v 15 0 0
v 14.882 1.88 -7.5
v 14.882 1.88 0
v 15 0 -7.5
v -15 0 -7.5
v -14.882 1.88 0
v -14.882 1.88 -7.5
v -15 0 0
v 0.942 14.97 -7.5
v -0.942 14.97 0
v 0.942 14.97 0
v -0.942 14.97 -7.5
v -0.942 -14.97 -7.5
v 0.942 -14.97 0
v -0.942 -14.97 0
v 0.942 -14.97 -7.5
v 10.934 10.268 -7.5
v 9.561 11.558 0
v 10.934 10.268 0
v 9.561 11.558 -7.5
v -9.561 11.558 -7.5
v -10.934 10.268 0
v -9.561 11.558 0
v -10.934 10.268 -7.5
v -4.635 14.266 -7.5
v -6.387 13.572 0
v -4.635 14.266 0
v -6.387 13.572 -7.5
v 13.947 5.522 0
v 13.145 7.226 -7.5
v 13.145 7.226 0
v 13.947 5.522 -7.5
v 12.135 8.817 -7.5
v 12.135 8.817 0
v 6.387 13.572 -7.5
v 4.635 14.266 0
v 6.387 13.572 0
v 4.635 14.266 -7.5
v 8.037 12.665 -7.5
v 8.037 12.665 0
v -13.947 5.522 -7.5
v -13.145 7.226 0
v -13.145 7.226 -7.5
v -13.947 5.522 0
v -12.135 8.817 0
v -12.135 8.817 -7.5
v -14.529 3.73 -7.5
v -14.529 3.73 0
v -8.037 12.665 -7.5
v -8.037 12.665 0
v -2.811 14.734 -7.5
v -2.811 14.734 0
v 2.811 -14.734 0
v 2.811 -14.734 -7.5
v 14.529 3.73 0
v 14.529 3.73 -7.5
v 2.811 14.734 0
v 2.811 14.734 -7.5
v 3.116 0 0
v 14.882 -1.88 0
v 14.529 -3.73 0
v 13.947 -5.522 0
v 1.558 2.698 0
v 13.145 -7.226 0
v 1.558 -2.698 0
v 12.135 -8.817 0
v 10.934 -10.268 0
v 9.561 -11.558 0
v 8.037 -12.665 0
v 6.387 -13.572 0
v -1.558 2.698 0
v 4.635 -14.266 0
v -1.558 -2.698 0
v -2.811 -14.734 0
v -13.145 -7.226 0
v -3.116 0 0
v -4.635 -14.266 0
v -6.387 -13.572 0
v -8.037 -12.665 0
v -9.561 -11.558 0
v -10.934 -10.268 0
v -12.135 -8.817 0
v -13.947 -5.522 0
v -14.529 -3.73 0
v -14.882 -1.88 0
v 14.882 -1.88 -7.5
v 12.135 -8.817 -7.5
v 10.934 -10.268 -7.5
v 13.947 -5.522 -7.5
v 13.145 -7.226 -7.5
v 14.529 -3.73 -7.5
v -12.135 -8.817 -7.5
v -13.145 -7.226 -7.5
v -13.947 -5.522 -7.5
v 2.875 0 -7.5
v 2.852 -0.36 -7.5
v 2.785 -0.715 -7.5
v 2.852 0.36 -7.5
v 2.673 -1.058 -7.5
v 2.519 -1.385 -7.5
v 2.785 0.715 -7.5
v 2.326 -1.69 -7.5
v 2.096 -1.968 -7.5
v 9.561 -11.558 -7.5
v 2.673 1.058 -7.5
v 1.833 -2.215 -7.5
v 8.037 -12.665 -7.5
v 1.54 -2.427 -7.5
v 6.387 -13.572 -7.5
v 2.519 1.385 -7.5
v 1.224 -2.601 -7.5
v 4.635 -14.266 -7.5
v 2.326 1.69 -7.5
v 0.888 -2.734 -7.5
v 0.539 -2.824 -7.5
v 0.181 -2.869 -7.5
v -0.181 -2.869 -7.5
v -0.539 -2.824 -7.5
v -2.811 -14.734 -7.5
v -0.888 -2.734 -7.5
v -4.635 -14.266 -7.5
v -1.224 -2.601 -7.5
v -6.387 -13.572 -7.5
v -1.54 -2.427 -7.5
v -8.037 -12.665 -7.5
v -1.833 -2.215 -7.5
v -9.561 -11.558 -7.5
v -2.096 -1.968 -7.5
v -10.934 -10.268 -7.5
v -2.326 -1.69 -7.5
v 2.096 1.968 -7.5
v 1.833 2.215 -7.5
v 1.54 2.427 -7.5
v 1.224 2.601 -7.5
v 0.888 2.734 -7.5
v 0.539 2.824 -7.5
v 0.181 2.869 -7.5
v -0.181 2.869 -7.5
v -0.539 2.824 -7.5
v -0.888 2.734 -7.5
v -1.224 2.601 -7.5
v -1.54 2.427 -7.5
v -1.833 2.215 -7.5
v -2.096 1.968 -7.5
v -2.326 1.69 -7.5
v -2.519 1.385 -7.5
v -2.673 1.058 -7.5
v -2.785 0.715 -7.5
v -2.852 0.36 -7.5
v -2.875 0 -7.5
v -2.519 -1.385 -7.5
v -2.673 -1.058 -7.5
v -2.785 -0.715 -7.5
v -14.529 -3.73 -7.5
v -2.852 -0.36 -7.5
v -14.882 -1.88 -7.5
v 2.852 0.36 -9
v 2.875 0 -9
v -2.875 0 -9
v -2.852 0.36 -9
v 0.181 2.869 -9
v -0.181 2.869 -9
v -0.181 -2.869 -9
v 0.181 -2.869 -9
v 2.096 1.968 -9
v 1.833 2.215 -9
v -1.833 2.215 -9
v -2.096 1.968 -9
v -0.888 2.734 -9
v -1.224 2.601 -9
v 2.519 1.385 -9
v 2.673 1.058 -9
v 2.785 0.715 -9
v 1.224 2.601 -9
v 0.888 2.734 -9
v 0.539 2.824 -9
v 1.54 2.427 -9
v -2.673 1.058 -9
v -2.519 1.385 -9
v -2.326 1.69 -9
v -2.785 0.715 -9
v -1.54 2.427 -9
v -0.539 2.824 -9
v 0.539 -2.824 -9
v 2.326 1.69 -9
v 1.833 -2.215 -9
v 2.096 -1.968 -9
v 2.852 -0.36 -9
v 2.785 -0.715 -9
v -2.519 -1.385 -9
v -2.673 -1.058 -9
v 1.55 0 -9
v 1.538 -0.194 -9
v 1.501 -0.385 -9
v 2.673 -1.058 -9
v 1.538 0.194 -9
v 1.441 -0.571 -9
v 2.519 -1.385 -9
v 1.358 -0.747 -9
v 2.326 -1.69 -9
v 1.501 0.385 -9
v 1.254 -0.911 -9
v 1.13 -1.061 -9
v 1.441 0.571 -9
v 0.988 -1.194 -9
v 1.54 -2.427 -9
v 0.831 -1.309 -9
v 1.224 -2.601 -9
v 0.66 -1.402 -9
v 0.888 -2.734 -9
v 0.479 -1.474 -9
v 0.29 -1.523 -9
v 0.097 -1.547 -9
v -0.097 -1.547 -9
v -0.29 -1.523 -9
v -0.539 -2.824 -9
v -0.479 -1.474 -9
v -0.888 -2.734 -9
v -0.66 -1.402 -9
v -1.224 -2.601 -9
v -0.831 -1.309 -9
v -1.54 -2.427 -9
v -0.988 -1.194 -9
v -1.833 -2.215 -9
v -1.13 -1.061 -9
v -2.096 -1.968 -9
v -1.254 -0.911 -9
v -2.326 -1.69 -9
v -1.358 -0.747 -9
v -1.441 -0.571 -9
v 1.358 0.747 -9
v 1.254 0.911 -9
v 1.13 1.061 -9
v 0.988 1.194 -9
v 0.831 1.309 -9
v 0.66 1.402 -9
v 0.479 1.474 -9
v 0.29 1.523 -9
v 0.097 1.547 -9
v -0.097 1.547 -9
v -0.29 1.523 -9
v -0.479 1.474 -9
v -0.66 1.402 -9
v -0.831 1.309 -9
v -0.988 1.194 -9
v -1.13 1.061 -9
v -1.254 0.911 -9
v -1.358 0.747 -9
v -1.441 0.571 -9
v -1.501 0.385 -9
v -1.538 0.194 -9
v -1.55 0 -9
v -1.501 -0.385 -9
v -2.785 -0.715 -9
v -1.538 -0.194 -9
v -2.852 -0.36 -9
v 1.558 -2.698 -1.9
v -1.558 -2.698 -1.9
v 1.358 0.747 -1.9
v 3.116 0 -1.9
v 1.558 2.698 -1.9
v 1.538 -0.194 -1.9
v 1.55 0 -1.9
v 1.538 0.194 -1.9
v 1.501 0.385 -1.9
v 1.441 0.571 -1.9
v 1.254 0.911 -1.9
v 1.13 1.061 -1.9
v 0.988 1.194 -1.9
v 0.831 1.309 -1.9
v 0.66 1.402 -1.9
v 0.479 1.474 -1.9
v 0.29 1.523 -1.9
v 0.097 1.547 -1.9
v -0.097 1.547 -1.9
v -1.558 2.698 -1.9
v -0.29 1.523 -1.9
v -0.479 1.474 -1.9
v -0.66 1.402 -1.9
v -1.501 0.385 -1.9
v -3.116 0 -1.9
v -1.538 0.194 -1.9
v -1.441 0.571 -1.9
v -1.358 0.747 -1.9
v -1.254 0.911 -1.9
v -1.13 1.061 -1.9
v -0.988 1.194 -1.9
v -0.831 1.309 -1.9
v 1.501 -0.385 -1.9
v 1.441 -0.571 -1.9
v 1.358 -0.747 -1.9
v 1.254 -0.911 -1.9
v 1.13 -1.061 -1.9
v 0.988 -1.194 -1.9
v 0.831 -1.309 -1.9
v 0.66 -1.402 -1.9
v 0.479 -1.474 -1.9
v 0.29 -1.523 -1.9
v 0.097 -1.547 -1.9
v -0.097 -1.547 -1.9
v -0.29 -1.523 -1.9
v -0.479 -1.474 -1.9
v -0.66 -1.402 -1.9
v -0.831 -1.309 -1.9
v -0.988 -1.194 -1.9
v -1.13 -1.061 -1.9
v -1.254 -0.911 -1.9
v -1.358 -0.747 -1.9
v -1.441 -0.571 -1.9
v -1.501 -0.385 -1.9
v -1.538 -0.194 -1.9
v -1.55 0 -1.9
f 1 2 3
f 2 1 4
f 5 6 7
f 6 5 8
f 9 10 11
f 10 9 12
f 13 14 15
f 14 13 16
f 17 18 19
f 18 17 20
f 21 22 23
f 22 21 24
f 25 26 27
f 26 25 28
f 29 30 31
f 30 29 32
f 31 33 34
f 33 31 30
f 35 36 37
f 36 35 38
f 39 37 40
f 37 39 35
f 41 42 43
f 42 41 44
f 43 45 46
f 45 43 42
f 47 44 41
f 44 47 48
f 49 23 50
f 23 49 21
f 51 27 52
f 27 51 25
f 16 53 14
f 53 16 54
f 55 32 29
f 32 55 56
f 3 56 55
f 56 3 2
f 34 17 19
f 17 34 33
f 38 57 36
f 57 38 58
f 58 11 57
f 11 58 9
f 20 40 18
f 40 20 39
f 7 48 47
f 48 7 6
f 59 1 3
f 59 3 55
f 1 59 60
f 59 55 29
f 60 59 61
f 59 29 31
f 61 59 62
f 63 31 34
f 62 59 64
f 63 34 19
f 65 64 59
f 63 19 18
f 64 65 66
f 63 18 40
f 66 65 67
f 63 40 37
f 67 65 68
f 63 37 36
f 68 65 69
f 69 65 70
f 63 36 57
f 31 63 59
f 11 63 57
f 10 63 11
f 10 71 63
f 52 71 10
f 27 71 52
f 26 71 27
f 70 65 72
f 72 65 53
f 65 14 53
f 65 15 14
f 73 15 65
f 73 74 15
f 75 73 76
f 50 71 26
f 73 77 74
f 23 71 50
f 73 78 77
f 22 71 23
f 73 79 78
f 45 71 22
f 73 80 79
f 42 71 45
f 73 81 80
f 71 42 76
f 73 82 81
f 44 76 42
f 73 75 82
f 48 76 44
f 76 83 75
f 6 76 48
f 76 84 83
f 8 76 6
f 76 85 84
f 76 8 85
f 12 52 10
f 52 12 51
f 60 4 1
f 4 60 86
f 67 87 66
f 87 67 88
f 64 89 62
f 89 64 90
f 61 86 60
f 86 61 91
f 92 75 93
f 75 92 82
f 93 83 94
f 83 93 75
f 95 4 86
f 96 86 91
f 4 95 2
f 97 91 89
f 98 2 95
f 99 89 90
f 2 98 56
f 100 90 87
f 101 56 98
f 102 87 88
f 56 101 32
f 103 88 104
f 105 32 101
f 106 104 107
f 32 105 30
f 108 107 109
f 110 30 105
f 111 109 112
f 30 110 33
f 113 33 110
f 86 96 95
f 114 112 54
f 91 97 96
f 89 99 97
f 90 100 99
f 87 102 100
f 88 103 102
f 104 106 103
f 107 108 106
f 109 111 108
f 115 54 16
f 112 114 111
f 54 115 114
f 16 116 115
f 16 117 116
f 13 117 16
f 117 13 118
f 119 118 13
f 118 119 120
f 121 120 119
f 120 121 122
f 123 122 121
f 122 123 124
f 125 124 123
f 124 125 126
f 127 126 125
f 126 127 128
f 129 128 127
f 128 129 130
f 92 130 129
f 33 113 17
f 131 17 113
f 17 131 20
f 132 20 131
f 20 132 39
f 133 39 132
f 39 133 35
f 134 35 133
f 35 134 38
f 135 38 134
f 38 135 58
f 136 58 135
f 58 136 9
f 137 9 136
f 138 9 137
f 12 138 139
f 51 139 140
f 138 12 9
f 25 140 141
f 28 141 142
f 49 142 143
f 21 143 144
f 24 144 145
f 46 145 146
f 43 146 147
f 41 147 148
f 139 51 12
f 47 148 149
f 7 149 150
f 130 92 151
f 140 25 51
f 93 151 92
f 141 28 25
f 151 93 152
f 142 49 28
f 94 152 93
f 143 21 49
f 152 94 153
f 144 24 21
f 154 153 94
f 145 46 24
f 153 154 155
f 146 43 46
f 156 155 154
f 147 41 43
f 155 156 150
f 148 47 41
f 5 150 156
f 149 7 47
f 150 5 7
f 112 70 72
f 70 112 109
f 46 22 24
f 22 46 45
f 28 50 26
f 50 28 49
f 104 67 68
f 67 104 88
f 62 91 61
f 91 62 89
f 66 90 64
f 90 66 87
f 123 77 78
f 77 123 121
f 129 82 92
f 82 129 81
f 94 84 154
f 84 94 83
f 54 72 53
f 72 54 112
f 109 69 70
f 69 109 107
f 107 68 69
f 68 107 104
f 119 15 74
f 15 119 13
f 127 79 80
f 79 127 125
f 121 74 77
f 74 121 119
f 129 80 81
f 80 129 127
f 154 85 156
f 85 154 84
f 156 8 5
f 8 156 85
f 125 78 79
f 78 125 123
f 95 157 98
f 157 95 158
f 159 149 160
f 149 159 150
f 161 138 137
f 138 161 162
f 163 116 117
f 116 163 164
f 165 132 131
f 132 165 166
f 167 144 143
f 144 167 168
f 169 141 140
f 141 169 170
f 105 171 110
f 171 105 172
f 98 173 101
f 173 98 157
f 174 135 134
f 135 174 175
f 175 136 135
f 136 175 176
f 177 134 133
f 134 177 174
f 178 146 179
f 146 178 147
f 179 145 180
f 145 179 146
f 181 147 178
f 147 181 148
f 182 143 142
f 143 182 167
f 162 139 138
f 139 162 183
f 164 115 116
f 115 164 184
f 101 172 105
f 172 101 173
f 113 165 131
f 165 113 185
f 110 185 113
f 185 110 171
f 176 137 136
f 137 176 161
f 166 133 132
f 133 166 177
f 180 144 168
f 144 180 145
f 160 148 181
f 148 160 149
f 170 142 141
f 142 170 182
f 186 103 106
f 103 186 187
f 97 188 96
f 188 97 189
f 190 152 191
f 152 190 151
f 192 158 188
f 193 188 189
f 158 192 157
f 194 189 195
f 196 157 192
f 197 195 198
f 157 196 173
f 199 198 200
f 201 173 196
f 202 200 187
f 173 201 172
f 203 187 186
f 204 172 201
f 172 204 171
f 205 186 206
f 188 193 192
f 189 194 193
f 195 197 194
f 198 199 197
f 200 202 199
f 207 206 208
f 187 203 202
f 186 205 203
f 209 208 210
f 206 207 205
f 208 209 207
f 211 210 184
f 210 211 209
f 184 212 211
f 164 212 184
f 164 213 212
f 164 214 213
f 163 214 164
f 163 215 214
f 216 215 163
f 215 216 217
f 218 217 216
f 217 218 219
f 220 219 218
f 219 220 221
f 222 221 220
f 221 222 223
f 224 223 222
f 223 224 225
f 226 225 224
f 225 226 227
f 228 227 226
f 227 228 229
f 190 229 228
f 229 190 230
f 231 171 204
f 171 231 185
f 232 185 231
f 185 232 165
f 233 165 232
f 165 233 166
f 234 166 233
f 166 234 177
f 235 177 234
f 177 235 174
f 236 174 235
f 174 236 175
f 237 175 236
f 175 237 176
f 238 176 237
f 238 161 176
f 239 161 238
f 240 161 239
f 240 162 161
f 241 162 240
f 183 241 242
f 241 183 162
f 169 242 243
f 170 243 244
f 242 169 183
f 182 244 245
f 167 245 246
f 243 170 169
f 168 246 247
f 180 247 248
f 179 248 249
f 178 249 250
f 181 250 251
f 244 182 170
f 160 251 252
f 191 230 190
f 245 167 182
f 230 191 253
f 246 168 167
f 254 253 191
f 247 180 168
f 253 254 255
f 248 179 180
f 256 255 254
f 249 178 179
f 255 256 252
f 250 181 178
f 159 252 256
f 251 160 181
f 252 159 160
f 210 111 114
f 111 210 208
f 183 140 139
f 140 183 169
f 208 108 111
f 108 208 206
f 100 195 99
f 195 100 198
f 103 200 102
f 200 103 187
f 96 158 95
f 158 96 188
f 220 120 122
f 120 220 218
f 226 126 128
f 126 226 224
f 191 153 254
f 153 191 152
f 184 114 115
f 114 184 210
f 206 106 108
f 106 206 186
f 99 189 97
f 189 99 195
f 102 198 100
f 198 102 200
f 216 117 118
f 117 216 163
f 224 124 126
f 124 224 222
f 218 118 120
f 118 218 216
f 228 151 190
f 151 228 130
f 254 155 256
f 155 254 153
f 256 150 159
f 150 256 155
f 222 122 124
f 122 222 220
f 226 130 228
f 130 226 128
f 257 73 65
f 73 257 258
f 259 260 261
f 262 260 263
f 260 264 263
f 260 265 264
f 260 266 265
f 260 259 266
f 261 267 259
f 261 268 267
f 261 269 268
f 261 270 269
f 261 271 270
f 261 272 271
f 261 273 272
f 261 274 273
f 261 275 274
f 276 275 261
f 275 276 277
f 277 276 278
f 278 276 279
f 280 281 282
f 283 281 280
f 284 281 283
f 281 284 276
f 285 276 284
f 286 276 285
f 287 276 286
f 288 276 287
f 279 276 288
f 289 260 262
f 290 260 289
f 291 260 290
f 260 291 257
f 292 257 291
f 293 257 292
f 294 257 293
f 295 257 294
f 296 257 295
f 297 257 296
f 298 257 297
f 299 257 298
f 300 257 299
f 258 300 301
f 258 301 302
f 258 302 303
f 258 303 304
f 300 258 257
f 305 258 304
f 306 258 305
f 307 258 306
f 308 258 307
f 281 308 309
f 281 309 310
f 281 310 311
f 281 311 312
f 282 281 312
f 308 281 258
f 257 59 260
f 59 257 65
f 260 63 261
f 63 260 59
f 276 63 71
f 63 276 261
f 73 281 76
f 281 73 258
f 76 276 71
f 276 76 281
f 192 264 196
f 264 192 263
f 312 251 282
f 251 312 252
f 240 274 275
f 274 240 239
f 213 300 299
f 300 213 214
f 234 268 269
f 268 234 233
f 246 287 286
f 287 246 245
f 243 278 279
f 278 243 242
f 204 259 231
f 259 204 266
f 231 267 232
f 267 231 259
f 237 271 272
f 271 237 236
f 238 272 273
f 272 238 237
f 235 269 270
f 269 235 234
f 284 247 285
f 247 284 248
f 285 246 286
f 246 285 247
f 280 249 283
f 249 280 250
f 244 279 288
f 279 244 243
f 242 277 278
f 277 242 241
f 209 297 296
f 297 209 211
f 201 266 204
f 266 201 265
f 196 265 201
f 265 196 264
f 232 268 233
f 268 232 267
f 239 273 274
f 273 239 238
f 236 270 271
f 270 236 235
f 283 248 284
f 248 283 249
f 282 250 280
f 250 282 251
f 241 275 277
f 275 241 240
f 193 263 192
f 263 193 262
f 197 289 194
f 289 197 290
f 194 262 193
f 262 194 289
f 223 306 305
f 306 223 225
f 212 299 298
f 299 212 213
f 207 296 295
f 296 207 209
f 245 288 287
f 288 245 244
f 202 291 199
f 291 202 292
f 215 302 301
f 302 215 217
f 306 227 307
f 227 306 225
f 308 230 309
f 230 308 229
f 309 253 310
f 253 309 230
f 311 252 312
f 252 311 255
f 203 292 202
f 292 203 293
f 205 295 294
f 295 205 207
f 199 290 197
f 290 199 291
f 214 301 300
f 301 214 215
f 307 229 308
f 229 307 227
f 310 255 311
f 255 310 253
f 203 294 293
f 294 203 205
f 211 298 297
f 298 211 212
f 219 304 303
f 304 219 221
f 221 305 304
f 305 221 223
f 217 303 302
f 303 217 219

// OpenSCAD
$fn = 50;


difference() {
	union() {
		translate(v = [0, 0, -7.5000000000]) {
			cylinder(h = 7.5000000000, r = 15.0000000000);
		}
		translate(v = [0, 0, -9.0000000000]) {
			cylinder(h = 9, r = 2.8750000000);
		}
	}
	union() {
		translate(v = [0, 0, 0]) {
			rotate(a = [0, 0, 0]) {
				difference() {
					union() {
						translate(v = [0, 0, -1.9000000000]) {
							linear_extrude(height = 1.9000000000) {
								polygon(points = [[3.1158000000, 0.0000000000], [1.5579000000, 2.6983619531], [-1.5579000000, 2.6983619531], [-3.1158000000, 0.0000000000], [-1.5579000000, -2.6983619531], [1.5579000000, -2.6983619531]]);
							}
						}
					}
					union();
				}
			}
		}
		#translate(v = [0, 0, -100.0000000000]) {
			cylinder(h = 200, r = 1.5500000000);
		}
	}
}
